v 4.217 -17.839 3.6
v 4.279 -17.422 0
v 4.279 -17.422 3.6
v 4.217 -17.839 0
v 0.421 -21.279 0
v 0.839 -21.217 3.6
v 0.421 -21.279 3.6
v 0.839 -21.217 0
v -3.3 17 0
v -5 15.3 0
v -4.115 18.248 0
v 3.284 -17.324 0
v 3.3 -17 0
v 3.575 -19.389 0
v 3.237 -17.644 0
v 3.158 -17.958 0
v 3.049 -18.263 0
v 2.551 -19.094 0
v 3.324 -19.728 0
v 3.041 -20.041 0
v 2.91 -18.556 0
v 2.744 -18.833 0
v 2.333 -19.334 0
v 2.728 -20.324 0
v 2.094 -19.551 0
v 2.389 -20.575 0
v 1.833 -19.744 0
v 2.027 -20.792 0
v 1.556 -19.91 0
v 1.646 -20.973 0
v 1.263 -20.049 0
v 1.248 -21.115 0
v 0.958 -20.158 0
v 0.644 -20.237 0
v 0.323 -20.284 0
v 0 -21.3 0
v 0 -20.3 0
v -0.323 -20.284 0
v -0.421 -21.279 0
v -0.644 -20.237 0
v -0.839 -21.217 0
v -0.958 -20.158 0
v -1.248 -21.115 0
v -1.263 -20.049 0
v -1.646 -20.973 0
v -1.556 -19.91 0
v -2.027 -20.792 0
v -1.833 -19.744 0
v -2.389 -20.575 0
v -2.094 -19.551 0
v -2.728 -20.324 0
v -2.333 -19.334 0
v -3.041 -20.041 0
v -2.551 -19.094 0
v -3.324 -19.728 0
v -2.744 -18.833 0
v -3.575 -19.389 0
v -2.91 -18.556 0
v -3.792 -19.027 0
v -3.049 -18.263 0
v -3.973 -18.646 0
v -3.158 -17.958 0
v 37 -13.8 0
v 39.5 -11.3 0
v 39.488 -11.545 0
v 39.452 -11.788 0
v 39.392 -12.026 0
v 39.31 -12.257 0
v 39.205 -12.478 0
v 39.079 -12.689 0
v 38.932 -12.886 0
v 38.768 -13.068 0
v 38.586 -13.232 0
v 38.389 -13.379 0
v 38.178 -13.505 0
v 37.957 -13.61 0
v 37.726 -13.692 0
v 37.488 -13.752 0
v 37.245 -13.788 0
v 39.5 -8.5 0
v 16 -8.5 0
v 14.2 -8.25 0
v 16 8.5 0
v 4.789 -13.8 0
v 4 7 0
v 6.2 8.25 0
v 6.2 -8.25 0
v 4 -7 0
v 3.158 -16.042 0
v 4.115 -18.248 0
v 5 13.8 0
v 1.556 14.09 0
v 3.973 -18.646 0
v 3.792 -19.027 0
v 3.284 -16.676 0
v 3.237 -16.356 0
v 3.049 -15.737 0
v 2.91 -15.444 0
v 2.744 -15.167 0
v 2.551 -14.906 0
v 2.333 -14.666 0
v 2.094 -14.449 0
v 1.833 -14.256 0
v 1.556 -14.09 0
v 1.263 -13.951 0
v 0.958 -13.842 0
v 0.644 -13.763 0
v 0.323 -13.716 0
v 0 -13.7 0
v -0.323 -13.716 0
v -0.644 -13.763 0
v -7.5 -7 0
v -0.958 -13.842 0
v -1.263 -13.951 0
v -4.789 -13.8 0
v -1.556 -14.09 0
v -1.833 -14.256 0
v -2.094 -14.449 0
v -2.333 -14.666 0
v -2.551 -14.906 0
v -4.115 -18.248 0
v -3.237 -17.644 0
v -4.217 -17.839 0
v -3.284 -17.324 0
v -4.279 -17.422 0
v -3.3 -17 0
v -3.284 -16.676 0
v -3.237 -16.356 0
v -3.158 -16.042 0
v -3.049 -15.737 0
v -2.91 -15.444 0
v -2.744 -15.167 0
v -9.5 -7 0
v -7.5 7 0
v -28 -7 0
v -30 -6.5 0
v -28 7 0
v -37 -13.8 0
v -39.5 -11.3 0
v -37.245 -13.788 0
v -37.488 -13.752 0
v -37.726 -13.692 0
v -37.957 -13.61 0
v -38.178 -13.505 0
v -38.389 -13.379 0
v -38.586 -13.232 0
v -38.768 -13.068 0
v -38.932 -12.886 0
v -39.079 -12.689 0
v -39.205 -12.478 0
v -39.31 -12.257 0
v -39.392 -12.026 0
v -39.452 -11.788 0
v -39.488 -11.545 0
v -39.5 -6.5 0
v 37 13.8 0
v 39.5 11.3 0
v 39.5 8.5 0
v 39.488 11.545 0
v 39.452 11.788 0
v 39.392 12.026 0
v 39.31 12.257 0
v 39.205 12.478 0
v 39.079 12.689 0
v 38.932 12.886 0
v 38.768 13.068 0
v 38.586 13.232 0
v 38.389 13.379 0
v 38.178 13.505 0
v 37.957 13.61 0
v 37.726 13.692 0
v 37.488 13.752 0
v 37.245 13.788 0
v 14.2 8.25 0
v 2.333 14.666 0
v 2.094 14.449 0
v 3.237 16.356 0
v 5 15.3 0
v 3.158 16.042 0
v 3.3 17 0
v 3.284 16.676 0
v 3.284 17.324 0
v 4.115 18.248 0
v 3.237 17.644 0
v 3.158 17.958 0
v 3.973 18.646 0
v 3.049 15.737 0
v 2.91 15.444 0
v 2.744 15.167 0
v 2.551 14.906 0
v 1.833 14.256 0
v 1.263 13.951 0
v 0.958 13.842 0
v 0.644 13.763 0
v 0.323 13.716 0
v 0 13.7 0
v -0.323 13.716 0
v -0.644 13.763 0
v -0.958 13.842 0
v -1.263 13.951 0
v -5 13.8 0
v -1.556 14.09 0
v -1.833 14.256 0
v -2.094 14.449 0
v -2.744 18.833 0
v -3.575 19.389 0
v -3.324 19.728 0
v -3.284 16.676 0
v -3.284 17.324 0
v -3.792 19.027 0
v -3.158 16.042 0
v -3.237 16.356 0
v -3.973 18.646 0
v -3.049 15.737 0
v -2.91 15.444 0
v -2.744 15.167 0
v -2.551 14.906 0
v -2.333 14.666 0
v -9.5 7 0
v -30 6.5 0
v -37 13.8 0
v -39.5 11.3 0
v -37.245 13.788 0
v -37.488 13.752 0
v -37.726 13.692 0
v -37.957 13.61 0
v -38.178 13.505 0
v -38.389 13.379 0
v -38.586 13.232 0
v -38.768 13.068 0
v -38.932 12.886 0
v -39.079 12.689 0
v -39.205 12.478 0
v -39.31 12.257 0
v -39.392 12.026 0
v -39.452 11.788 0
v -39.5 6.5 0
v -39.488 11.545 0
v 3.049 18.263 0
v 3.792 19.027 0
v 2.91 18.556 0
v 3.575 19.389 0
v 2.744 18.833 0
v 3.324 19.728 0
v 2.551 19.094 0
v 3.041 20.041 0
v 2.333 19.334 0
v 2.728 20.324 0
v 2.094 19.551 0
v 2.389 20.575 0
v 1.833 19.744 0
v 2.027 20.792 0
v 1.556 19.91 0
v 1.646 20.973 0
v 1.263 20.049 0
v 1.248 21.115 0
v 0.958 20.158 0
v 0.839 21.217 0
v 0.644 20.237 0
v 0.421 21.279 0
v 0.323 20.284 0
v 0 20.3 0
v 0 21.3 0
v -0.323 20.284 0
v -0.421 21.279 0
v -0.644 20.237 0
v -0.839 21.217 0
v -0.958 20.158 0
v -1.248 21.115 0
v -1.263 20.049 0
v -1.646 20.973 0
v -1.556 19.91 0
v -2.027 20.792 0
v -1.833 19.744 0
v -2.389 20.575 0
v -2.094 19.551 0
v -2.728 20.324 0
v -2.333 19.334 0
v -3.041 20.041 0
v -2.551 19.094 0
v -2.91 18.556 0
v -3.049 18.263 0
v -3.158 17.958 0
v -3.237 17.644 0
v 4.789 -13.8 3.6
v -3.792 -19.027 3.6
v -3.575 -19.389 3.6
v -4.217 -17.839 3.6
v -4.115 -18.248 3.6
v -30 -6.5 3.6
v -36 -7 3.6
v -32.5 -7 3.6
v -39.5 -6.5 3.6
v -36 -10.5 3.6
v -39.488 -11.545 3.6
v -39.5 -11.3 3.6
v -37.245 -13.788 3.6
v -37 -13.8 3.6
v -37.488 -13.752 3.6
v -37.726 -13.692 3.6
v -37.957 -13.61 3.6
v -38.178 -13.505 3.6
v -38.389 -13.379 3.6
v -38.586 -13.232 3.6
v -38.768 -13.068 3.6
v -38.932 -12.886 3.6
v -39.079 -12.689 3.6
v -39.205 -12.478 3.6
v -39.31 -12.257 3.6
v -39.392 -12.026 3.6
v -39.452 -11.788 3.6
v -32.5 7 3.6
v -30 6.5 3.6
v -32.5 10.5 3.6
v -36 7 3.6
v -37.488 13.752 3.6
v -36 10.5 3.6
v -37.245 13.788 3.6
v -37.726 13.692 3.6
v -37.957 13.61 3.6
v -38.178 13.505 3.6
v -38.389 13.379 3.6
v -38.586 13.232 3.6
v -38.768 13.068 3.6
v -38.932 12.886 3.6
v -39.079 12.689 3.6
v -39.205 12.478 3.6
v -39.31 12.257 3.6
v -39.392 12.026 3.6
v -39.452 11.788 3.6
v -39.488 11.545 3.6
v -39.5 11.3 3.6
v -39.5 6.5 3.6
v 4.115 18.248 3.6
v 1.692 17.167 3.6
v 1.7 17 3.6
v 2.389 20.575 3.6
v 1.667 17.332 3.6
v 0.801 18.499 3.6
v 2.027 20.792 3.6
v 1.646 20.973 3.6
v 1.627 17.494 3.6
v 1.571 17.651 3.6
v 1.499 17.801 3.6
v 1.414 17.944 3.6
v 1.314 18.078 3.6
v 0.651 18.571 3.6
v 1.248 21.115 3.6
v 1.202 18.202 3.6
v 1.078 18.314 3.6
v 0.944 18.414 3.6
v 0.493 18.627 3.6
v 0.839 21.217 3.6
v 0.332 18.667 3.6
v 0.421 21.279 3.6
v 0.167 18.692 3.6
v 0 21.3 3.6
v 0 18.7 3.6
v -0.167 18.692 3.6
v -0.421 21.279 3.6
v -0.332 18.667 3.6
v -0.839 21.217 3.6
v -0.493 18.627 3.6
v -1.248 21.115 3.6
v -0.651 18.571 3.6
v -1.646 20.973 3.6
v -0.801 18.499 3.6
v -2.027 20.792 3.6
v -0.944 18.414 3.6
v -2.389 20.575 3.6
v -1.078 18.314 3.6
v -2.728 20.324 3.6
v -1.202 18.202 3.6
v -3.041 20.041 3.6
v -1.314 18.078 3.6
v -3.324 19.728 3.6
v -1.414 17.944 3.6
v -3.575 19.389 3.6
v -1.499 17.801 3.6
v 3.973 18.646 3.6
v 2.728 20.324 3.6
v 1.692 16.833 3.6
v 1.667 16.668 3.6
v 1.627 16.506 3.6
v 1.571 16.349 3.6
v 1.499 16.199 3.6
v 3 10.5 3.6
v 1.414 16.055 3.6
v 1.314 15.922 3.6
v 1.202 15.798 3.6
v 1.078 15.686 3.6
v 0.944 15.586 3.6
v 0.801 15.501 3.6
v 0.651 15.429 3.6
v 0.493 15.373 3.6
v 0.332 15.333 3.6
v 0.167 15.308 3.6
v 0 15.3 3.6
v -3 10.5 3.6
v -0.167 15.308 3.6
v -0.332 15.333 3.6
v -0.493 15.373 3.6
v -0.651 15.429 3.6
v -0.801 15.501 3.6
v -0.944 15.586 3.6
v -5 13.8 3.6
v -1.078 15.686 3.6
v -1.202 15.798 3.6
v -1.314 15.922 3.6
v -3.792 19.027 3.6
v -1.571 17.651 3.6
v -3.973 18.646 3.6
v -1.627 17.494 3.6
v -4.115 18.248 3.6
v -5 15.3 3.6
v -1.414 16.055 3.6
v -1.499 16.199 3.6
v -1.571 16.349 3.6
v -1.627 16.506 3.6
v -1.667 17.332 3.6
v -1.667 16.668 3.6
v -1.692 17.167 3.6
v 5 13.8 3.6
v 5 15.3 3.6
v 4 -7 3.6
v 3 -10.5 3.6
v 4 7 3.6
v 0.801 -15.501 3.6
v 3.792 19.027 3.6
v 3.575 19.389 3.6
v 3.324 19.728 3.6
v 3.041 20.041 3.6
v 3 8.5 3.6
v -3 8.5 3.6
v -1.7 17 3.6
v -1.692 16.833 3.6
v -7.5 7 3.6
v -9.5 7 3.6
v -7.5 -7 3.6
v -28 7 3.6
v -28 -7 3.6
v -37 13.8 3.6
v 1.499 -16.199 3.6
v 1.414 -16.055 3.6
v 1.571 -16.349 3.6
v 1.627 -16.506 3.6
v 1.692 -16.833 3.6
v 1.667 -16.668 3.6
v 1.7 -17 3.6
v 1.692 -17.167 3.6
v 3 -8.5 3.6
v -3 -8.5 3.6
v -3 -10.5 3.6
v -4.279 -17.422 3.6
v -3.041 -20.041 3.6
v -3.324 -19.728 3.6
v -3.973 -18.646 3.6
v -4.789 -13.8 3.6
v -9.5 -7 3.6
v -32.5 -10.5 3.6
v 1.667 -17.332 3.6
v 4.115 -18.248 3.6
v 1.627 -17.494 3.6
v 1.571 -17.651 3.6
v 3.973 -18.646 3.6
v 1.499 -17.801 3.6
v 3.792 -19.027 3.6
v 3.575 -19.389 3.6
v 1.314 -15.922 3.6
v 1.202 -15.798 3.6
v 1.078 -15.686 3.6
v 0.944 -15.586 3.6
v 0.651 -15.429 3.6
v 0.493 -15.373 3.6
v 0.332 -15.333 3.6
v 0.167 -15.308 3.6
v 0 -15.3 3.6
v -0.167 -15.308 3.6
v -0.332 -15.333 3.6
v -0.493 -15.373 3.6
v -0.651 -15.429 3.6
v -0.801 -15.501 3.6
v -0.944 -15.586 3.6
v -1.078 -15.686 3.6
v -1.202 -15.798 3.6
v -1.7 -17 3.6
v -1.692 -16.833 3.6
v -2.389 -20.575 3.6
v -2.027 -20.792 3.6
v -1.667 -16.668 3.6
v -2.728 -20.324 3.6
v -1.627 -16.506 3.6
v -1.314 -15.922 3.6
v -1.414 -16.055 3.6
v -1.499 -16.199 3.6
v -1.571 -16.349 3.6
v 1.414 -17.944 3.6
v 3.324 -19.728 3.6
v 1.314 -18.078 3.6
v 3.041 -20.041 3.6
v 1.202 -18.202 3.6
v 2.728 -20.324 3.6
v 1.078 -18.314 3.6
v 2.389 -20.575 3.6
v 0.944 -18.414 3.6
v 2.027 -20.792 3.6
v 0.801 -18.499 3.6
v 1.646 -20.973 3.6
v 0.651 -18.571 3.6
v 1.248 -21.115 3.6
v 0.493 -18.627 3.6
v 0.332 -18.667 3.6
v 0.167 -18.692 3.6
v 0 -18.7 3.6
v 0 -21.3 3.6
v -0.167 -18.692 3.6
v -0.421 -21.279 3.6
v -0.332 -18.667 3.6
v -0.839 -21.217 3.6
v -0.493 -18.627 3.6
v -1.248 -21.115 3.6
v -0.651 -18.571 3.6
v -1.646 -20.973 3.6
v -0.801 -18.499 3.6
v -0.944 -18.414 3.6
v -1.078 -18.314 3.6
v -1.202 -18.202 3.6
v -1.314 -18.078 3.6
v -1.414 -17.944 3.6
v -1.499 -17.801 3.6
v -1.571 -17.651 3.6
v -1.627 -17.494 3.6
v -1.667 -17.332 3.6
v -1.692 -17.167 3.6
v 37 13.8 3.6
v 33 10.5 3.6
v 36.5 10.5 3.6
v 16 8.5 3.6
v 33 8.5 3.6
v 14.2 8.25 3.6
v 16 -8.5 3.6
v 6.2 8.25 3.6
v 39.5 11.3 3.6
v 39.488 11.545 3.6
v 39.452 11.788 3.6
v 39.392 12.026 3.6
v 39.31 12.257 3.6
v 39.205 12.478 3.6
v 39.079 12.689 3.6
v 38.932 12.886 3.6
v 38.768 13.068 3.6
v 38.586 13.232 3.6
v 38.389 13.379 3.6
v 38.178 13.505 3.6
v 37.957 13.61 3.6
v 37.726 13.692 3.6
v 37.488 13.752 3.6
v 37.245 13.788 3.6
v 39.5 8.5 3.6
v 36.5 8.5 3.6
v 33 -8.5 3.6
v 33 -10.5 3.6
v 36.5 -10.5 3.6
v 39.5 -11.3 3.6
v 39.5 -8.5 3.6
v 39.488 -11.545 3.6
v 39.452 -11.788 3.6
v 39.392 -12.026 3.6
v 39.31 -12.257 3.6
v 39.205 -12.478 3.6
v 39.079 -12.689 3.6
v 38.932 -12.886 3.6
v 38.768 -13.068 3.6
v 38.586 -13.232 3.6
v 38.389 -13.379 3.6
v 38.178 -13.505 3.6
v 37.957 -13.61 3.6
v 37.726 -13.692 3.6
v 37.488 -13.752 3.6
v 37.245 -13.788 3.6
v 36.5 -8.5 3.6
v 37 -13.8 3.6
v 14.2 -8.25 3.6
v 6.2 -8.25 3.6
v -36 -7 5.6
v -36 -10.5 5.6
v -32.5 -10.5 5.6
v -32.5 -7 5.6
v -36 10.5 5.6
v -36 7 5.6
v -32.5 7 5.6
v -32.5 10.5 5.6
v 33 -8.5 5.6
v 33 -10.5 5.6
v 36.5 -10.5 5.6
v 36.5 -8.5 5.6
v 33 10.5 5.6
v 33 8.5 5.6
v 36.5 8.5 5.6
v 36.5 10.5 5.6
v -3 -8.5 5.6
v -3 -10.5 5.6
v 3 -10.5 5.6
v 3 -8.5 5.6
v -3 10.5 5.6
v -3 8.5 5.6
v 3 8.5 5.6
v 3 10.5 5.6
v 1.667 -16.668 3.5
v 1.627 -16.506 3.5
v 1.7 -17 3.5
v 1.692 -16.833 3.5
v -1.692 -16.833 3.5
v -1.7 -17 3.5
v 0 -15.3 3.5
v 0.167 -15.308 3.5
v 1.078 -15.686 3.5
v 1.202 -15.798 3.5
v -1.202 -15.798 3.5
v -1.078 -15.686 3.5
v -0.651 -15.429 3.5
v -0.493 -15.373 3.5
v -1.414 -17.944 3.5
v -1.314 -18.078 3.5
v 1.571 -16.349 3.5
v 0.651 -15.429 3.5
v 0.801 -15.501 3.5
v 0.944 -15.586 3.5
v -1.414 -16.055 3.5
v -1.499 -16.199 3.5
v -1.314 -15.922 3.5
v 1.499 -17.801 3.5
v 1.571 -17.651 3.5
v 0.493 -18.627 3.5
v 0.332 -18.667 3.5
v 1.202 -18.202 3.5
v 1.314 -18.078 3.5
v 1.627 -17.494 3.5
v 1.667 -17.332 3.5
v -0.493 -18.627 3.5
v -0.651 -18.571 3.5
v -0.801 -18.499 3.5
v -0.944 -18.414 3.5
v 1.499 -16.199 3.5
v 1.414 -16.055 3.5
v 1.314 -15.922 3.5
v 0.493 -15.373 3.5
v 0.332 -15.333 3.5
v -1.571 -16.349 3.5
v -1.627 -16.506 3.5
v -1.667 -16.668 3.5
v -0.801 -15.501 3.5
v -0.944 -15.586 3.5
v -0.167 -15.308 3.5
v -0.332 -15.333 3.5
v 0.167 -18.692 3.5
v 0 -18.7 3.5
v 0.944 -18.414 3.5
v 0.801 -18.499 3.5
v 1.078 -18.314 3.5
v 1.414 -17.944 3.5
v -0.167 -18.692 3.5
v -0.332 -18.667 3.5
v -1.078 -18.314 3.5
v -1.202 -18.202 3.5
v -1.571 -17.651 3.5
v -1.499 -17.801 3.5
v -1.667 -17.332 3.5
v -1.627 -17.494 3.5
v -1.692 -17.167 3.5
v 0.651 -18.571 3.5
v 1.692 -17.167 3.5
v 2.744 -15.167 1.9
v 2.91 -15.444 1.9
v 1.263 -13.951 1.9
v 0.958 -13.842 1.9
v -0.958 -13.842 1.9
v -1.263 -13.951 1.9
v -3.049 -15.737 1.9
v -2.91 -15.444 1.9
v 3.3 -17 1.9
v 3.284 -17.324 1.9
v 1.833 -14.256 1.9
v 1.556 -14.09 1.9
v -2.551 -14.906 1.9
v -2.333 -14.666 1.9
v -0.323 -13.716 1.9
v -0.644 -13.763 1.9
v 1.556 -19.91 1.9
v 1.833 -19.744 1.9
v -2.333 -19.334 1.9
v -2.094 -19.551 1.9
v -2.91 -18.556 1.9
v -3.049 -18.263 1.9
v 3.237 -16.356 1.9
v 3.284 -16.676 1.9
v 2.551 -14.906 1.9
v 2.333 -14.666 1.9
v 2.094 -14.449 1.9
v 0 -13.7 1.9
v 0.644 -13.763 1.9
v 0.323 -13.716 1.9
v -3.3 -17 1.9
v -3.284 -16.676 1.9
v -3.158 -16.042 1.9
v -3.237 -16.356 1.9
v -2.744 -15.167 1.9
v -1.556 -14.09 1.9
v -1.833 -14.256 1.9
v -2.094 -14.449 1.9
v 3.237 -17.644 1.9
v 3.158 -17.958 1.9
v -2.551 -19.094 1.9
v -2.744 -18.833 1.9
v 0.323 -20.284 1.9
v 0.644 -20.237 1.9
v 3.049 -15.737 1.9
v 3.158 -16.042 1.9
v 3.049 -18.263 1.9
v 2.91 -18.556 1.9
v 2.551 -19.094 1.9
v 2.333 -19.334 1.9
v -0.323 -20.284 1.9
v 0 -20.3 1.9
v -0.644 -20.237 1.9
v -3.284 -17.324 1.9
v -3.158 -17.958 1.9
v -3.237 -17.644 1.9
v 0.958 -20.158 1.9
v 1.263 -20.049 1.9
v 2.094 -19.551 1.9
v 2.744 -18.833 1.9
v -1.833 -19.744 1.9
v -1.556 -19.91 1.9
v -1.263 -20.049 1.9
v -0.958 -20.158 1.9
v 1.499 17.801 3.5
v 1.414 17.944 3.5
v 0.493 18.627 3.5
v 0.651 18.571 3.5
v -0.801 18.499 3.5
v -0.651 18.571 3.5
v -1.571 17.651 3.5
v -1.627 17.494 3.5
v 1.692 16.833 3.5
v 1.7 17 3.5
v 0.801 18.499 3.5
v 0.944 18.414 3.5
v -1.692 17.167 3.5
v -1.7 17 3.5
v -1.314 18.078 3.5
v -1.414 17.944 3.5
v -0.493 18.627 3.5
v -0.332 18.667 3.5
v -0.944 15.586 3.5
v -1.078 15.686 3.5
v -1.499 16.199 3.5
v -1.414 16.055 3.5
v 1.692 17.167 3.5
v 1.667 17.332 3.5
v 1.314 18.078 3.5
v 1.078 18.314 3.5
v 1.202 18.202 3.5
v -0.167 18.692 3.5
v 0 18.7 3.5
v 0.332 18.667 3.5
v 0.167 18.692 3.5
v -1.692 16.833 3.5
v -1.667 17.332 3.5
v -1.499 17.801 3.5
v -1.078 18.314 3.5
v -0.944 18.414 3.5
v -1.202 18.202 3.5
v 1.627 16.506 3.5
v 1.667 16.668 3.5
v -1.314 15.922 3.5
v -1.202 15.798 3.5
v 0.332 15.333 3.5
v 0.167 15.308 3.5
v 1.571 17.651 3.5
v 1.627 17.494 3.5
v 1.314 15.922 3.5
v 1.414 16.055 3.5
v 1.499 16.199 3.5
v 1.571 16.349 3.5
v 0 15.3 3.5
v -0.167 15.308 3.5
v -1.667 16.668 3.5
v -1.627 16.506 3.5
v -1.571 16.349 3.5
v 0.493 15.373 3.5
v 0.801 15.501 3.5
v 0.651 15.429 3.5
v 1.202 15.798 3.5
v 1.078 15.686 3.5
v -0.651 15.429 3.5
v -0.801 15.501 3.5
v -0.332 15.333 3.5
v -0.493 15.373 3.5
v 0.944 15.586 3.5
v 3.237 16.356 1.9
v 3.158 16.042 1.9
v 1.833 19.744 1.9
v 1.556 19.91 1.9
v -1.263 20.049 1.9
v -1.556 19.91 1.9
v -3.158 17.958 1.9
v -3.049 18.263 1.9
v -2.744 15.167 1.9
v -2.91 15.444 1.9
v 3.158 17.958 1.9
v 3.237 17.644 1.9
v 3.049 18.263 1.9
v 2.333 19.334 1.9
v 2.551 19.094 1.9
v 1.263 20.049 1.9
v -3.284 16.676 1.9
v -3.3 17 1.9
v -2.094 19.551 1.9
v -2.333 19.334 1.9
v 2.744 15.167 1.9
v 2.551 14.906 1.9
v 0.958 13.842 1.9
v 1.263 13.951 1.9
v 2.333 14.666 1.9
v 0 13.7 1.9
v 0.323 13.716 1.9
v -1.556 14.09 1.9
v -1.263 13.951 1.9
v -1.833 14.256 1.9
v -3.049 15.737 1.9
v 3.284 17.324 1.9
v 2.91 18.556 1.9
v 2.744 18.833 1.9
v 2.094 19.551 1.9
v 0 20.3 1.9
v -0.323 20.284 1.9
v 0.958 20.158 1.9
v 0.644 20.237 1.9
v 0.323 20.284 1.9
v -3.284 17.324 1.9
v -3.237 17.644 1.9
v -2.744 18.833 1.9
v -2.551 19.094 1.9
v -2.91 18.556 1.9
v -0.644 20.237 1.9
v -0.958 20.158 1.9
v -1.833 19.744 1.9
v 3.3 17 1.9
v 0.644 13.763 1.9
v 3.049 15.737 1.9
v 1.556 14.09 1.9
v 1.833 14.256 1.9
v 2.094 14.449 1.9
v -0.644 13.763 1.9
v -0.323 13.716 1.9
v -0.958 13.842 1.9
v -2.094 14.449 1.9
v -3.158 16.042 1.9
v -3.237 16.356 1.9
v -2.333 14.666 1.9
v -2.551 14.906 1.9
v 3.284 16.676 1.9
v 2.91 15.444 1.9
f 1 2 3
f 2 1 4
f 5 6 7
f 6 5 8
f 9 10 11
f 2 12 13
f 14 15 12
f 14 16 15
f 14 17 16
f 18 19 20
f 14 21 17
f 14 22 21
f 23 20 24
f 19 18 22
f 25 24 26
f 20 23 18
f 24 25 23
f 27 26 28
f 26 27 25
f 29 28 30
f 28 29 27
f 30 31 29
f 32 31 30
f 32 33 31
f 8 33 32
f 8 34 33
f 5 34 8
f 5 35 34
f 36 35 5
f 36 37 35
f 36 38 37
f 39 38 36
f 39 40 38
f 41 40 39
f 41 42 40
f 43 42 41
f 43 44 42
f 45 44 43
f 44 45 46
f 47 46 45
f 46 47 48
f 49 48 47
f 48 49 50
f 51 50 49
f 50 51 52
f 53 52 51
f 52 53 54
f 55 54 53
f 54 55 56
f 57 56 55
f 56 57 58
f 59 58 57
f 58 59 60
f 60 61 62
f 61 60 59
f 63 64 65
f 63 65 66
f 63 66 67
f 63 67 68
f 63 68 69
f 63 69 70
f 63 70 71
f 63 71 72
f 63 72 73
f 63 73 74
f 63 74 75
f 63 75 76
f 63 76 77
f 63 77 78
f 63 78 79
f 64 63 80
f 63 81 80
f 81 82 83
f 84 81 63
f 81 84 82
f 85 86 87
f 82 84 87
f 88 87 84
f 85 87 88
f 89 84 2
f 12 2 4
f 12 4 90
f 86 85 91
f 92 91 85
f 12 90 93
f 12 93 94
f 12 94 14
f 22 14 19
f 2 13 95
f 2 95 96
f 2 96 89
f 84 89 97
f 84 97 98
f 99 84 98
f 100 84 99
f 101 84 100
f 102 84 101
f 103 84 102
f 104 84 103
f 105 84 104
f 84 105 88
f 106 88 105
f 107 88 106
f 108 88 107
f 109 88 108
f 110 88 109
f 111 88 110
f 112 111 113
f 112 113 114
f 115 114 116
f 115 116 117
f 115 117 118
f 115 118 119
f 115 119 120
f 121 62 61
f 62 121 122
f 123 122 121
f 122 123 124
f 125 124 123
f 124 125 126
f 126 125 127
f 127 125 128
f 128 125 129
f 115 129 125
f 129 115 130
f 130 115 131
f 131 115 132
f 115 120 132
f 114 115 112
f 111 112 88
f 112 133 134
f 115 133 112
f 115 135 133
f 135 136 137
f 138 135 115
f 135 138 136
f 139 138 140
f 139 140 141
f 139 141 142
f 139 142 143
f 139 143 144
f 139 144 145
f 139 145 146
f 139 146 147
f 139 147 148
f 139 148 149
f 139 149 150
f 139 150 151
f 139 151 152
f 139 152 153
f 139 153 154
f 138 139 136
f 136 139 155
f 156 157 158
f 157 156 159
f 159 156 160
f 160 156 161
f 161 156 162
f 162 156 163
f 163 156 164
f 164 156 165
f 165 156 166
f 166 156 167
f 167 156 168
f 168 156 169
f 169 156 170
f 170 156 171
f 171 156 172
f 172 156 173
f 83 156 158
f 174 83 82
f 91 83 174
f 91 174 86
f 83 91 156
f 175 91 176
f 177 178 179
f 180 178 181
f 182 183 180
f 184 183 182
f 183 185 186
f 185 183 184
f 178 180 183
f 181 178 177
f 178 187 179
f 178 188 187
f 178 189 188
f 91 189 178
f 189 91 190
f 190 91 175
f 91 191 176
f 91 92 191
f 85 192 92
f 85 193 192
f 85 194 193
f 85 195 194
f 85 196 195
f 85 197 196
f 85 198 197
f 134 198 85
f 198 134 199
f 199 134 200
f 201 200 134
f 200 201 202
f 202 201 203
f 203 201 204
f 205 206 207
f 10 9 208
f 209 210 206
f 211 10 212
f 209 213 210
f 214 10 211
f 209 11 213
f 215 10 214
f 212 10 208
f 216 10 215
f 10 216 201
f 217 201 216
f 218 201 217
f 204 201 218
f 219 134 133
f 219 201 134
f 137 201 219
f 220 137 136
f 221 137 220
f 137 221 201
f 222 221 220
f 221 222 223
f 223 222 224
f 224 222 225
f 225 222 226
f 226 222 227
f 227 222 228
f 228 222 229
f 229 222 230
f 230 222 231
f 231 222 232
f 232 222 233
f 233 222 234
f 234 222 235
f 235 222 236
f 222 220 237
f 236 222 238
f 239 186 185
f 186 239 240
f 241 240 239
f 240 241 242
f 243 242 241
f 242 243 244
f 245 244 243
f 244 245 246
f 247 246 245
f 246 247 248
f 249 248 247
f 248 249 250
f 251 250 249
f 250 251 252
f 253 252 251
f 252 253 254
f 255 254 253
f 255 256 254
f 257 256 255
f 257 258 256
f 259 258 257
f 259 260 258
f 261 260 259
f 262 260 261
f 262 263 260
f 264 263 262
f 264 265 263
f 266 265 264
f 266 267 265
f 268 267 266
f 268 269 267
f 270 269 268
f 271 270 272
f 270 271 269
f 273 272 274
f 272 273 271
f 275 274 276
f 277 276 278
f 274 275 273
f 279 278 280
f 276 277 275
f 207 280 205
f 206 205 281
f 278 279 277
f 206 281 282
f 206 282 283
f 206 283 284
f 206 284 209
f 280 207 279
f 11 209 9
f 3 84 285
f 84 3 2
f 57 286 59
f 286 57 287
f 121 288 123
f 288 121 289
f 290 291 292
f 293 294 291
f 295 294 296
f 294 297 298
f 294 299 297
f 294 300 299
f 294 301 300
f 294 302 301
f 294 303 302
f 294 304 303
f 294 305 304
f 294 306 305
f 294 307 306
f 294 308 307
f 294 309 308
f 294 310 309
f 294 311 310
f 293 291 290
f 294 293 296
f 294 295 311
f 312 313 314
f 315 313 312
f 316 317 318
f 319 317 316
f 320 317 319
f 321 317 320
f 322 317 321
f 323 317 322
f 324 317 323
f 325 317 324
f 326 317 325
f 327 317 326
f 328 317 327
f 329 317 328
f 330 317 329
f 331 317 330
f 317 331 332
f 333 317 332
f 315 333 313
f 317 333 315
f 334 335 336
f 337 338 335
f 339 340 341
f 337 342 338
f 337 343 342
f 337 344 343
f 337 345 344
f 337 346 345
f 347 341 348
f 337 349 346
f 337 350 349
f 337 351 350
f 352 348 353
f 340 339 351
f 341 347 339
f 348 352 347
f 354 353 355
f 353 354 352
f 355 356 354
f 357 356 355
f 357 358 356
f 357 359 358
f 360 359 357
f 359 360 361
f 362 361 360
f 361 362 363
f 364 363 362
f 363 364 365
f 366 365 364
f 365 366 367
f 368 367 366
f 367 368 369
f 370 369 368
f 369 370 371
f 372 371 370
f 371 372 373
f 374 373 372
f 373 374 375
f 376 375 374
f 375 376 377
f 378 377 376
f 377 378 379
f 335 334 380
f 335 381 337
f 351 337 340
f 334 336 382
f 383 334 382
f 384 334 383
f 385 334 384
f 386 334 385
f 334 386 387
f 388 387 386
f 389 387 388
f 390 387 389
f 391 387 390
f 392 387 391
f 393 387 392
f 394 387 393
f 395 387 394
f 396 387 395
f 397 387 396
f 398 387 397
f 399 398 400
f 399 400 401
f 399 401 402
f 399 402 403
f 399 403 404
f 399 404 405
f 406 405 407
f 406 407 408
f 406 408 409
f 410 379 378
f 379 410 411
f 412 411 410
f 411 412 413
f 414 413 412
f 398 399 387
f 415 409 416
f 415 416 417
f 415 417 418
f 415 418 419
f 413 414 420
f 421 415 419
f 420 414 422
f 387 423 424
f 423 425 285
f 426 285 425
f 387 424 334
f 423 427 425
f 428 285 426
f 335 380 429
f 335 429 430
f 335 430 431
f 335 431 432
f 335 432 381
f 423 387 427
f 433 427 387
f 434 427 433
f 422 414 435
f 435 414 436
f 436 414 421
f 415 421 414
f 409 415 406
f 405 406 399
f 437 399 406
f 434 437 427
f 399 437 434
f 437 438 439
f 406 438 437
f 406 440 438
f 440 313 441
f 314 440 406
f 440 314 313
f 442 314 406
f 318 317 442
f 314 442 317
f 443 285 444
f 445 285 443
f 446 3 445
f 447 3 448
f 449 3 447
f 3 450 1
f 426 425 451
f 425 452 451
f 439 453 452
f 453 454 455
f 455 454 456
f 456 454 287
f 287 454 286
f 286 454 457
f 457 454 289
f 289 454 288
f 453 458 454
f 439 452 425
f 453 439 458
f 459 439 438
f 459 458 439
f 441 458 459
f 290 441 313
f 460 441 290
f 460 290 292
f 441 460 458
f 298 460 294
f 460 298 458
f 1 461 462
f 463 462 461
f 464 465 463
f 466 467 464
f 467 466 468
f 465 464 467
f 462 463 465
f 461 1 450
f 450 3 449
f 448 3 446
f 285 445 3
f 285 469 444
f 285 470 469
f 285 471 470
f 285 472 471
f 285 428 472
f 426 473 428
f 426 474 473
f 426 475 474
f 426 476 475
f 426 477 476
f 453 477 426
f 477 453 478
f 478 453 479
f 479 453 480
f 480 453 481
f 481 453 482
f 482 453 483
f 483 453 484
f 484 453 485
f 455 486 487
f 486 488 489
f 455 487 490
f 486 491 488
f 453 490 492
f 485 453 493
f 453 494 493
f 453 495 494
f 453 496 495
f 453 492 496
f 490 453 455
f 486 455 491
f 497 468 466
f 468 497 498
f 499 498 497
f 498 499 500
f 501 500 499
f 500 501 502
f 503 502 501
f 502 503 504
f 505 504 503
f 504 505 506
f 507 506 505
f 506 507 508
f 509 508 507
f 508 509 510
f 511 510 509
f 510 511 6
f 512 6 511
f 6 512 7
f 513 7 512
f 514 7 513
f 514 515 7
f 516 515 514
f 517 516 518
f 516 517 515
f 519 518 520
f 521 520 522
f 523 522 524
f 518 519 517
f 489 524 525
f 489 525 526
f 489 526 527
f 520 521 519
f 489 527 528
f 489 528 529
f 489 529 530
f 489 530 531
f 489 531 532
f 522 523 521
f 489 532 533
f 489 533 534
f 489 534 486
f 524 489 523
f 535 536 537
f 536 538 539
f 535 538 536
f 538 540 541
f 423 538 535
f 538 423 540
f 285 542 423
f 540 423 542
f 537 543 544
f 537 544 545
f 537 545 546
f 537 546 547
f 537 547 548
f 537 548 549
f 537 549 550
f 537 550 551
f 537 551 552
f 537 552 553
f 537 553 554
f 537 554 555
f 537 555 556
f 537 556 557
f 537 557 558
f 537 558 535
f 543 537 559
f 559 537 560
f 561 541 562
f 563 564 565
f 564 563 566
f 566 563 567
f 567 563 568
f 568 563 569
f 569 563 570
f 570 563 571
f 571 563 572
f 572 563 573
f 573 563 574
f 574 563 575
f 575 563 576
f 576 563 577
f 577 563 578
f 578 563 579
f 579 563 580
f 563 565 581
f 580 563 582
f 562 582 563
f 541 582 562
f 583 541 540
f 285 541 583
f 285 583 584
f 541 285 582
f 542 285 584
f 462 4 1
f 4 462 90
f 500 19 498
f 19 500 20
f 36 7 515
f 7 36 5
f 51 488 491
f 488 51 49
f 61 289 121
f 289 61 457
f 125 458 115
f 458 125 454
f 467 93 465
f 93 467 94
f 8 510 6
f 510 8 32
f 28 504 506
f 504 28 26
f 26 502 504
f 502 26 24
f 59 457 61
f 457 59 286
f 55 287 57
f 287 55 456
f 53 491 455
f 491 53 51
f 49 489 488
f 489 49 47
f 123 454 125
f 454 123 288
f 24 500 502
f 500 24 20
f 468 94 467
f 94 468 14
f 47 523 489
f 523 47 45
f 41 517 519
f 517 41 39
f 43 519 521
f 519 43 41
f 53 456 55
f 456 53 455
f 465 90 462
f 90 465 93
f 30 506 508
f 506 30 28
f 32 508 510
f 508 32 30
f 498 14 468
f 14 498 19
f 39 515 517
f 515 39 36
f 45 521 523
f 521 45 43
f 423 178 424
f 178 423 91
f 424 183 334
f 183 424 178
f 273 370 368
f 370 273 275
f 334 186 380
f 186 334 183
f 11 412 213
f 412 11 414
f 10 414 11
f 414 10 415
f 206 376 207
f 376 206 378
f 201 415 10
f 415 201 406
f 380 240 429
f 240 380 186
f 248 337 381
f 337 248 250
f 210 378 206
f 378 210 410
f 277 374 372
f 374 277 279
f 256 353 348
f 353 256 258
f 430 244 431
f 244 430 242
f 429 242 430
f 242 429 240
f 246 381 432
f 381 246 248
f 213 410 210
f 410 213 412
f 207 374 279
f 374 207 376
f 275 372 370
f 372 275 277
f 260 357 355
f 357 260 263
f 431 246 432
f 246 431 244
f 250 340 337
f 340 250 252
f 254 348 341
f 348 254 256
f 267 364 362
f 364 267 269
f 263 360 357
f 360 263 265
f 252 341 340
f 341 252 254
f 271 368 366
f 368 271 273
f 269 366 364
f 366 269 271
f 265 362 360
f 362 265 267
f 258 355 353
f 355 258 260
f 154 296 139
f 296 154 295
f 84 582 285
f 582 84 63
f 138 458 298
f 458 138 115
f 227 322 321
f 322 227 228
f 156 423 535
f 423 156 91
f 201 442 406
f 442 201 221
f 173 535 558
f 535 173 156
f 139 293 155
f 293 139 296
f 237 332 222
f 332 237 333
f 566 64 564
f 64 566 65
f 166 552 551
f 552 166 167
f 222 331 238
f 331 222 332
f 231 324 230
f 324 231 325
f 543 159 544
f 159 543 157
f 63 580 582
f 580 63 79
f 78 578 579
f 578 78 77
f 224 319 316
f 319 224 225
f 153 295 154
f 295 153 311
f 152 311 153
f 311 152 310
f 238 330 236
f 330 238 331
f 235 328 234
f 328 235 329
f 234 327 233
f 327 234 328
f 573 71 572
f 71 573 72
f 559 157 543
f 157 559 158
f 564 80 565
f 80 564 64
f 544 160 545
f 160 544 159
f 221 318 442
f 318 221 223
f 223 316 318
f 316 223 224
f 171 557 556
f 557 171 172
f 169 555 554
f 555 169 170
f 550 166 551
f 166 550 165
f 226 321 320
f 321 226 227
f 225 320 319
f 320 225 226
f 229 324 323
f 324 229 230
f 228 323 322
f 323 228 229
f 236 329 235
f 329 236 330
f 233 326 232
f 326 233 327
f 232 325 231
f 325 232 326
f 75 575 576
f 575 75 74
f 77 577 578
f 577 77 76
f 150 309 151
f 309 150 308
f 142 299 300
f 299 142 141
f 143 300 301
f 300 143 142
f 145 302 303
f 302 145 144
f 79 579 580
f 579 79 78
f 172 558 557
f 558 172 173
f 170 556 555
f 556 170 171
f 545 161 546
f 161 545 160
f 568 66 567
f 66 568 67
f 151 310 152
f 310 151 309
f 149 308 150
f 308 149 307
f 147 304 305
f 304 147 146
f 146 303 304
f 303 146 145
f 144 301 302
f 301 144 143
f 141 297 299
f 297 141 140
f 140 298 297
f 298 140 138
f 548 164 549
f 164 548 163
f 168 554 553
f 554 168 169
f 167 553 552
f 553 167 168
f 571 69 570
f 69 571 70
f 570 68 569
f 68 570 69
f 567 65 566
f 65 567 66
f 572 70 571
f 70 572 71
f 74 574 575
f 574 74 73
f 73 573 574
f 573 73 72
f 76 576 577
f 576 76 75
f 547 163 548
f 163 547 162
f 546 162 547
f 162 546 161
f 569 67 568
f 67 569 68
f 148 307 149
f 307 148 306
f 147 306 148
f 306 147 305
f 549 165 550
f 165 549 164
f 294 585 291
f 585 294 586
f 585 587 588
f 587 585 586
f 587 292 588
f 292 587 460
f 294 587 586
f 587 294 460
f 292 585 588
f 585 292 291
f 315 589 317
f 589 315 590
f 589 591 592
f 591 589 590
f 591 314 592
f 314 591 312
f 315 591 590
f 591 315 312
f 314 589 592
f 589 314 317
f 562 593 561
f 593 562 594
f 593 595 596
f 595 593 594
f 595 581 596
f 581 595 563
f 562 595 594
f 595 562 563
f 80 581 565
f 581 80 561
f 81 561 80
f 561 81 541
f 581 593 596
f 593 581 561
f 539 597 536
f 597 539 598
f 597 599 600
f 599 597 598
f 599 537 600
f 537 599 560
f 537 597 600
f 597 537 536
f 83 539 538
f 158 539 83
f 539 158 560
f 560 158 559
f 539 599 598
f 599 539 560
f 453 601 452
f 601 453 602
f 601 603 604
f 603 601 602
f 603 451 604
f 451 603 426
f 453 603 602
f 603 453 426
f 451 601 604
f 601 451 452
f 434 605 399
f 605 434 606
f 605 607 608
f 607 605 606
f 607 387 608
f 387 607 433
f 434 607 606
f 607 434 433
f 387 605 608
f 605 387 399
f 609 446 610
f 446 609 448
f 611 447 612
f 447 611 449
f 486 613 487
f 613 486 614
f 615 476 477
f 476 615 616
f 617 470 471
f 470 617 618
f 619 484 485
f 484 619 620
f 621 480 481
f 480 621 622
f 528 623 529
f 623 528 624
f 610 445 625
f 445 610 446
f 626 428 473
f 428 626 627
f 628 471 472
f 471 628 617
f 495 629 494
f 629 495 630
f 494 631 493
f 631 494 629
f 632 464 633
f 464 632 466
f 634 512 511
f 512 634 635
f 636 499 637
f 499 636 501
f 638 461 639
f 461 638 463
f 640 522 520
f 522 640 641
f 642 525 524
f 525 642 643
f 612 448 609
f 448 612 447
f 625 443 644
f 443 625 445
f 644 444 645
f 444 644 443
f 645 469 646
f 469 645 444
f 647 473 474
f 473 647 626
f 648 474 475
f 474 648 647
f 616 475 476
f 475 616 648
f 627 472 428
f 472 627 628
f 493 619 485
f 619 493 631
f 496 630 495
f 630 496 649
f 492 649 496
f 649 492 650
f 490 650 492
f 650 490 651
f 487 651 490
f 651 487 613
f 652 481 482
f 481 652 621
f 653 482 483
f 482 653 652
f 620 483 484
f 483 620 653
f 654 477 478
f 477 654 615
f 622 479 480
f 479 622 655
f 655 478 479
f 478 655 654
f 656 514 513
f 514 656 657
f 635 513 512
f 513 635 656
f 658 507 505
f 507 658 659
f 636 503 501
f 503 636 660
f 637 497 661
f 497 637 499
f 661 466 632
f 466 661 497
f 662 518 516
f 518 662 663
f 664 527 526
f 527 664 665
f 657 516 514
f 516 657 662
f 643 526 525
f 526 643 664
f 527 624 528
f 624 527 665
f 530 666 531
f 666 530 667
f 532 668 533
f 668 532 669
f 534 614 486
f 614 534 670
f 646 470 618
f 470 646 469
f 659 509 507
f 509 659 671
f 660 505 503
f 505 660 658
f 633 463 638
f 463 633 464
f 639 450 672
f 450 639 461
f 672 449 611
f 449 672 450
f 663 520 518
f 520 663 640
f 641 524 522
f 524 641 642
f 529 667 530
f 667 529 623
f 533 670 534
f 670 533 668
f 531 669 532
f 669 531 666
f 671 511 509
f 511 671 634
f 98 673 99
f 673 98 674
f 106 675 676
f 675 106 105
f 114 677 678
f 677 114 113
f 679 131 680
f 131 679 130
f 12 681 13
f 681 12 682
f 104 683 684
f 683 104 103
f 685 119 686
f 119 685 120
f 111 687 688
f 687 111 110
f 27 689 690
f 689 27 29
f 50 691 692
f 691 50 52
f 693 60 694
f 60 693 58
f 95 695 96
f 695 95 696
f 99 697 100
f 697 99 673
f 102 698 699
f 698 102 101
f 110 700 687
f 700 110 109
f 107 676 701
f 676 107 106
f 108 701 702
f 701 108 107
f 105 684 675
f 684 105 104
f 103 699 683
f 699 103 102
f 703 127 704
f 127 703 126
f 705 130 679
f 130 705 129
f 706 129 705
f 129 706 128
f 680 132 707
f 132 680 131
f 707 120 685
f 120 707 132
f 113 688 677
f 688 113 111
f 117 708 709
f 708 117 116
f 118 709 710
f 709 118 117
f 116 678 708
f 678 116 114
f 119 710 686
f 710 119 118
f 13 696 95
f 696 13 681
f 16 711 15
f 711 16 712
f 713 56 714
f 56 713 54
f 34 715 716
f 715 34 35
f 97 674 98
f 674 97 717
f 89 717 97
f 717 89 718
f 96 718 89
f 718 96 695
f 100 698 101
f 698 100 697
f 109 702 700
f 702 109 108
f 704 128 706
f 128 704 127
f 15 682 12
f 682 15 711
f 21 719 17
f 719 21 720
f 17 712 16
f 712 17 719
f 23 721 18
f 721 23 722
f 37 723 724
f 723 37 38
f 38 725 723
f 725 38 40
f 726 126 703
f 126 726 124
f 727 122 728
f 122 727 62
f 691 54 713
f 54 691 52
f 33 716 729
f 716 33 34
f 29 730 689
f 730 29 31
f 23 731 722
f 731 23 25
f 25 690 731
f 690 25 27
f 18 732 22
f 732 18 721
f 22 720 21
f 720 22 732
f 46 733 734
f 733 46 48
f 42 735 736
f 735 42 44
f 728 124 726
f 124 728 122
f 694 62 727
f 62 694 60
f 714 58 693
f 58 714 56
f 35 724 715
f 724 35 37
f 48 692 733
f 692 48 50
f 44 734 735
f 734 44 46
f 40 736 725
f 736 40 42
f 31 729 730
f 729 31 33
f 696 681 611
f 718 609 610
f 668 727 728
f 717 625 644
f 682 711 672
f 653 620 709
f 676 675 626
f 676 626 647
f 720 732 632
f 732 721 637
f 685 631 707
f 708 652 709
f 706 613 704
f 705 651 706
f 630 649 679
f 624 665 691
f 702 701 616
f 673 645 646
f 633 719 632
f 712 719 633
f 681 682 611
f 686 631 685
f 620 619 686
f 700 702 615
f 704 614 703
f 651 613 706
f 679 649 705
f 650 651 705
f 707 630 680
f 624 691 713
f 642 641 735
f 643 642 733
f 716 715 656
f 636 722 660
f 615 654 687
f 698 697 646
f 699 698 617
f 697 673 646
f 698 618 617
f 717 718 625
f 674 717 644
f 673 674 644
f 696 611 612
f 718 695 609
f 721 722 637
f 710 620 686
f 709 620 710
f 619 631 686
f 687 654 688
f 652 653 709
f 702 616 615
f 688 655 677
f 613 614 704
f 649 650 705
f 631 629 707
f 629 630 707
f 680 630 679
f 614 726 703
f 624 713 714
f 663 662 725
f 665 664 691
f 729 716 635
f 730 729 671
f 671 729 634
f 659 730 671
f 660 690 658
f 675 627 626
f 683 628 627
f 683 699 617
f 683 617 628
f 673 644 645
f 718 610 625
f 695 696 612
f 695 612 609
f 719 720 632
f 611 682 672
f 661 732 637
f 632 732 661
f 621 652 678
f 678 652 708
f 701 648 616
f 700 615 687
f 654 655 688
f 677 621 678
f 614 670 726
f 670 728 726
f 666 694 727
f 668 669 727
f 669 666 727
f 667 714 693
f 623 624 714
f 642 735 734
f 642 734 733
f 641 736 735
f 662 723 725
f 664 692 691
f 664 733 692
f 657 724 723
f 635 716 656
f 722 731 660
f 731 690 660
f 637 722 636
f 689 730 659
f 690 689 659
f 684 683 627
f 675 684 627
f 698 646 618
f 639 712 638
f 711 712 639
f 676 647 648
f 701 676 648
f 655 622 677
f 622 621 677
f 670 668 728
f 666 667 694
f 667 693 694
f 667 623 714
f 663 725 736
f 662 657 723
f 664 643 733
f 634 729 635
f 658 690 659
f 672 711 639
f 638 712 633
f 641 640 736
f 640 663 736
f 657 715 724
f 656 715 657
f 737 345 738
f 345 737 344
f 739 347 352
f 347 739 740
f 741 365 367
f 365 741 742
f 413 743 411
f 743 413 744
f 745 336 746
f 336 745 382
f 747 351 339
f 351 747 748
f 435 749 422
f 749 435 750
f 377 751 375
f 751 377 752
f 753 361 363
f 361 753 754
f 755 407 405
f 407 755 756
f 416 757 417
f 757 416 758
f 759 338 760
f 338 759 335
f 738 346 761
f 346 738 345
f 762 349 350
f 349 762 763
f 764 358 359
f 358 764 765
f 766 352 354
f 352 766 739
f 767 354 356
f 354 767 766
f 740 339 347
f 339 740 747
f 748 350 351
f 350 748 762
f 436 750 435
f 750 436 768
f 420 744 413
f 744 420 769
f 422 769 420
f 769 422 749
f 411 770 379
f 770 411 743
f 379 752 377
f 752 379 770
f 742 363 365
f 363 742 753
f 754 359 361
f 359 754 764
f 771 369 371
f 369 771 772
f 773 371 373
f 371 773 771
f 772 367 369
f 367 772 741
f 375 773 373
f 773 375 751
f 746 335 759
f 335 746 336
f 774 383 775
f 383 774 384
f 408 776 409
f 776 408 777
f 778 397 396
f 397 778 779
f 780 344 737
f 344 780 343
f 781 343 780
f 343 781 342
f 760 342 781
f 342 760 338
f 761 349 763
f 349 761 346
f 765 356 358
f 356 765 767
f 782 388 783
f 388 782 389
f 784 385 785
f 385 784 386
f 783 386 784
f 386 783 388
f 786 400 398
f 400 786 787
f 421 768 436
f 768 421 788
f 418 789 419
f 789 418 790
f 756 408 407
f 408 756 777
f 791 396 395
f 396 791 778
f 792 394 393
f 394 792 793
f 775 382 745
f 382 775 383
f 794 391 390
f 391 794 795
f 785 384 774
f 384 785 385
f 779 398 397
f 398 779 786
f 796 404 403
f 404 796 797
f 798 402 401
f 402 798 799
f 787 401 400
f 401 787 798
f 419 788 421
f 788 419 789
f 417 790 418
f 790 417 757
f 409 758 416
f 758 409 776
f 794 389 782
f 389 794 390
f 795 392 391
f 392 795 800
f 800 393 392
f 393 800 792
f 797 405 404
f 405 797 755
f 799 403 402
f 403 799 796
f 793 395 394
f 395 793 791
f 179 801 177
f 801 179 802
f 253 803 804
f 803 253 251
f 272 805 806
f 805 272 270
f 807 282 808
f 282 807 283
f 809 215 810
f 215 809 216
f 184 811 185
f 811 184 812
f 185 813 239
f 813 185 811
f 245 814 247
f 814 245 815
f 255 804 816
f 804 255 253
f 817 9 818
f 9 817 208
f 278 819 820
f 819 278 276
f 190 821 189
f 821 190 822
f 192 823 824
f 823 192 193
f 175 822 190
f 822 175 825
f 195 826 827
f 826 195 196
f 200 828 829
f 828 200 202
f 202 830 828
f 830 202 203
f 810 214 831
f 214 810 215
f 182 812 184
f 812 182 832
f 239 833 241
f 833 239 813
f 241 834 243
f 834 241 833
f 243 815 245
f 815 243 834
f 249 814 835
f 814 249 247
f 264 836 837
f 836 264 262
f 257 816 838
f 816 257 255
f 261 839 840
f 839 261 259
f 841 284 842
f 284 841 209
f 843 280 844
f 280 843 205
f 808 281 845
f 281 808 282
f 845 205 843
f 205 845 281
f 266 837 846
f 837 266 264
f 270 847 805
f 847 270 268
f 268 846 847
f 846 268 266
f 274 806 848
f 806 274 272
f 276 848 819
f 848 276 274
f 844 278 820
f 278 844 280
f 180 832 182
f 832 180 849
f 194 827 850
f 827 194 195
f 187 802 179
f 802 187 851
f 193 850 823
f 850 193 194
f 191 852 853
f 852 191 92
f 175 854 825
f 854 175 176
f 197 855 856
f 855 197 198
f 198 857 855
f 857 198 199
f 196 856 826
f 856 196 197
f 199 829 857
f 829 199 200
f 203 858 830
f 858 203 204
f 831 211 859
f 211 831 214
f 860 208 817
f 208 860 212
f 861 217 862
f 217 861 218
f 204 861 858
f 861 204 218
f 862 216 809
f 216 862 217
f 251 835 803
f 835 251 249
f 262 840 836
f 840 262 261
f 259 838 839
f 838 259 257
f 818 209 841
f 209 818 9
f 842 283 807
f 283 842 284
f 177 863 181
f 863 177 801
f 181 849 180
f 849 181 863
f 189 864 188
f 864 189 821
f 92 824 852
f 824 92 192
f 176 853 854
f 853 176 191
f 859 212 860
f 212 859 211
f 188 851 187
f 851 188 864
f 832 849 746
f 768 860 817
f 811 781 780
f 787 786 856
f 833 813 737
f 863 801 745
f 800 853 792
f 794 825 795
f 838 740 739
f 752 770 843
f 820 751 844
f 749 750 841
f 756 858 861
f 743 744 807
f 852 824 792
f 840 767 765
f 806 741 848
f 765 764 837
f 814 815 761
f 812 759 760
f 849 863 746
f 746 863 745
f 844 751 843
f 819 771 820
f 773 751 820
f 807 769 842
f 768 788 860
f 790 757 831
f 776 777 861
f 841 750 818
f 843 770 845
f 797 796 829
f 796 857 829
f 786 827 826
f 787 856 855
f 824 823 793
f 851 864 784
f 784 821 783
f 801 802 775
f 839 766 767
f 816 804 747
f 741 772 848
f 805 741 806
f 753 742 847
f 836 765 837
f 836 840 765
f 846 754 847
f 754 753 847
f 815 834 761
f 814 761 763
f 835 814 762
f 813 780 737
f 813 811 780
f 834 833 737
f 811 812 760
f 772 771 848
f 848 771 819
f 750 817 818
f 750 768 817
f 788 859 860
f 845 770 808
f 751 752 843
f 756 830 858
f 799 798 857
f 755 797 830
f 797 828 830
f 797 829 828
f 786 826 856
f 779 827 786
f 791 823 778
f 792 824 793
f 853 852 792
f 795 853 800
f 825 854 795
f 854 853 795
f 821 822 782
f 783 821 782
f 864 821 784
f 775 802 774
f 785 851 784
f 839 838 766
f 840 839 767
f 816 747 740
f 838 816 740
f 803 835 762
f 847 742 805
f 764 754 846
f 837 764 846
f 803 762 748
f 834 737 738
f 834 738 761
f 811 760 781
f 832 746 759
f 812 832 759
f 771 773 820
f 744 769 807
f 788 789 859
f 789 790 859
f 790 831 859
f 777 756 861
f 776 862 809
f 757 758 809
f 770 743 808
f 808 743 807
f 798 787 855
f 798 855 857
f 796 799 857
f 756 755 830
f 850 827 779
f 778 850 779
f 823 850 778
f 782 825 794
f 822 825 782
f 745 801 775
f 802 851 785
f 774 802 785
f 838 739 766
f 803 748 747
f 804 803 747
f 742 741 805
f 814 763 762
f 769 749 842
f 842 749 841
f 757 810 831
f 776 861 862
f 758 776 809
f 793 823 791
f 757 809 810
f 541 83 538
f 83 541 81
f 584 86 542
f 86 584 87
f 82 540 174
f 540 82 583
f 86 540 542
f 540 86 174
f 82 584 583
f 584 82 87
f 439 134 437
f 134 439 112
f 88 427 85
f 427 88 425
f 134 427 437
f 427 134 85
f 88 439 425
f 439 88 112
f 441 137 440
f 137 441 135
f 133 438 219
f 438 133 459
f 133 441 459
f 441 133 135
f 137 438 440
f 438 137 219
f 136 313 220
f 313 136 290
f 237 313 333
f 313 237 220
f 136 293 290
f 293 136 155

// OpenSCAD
$fn = 64;

// ====================================================================
// THÔNG SỐ HÌNH HỌC HỆ THỐNG
// ====================================================================

// 1. Hệ 2 ống tròn Ø8.0 mm
rod_D       = 8.25;         // Đường kính kẹp ôm ống Ø8.0mm (+0.25mm dung sai ôm khít)
rod_CC      = 56.0;         // Khoảng cách tâm - đến - tâm (C-C) = 56.0mm (X = -28.0 và +28.0)
rod_out     = 64.0;         // Mép ngoài - ngoài = 64.0mm (tại X = -32.0 và +32.0)
rod_in      = 48.0;         // Mép trong - trong = 48.0mm (tại X = -24.0 và +24.0)

// 2. Bo Luckfox Pico Max / Pro
pcb_L       = 72.0;         // Chiều dài PCB Luckfox (mm) (X = -36.0 .. +36.0)
pcb_W       = 21.0;         // Chiều rộng PCB Luckfox (mm) (Y = -10.5 .. +10.5)
pcb_T       = 1.6;          // Độ dày PCB (mm)

cav_L       = 72.8;         // Chiều dài hốc chứa PCB (+0.8mm dung sai)
cav_W       = 21.6;         // Chiều rộng hốc chứa PCB (+0.6mm dung sai)

// 3. Chân GPIO Luckfox (40 chân quay xuống dưới)
gpio_L      = 50.8;         // Chiều dài 2 hàng chân 20x1 (X = -35.2 .. +15.6)
gpio_H      = 11.5;         // Độ sâu chân thò xuống dưới PCB (mm)
gpio_Y      = 8.89;         // Khoảng cách tâm 2 hàng chân (Y = -8.89 và +8.89)

// Các hàm bổ trợ hình học chuẩn FDM
module rounded_box_z(lx, ly, lz, r=2.4) {
    hull() {
        for (sx = [-1, 1])
            for (sy = [-1, 1])
                translate([sx*(lx/2 - r), sy*(ly/2 - r), 0])
                    cylinder(r=r, h=lz);
    }
}

// ====================================================================
// CHI TIẾT 03: NẸP TRÊN KHÓA GIỮ PCB LUCKFOX PICO MAX / PRO
// - Đặt phẳng Z = 0 (mặt lưng phẳng áp bàn in PEI), 0% Support!
// - CÁC GÂN NẸP ĐÈ PCB (CLERANCE LUGS): Gồm 6 vấu đè cao 2.0mm
//   chĩa xuống mặt bo mạch tại Z = 17.6mm, ép chặt PCB không cho rung lắc.
// - CÁC VÁCH NGĂN ĐƯỢC GIA CỐ >= 1.8mm (loại bỏ hoàn toàn các vách mỏng <1.5mm):
//   + Vách Cam MIPI <-> RJ45: 1.8mm (trước đây 0.5mm)
//   + Vách RV1106 <-> Cam MIPI: 2.2mm (trước đây 1.0mm)
//   + Vách BOOT/RESET <-> RV1106: 2.0mm
//   + Vách Type-C <-> BOOT/RESET: 2.0mm (trước đây chồng lấn 0mm)
// - Hốc chìm đầu ốc M3 d=6.6mm vát 45° in cực sạch.
// ====================================================================

module part_03_pcb_top_retainer() {
    ret_L   = 79.0;
    ret_W   = 27.6;
    plate_H = 3.6;          // Độ dày tấm nẹp chính
    lug_H   = 2.0;          // Chiều cao vấu ép đè PCB (tổng chiều cao = 5.6mm)

    difference() {
        union() {
            // 1. Tấm nẹp chính (đặt phẳng Z = 0 .. plate_H)
            rounded_box_z(ret_L, ret_W, plate_H, r=2.5);

            // 2. 2 Tai bắt ốc M3 hai bên sườn (X = 0, Y = ±17.0mm)
            for (sy = [-1, 1]) {
                hull() {
                    translate([0, sy*(ret_W/2 + 3.2), 0])
                        cylinder(d=8.6, h=plate_H);
                    translate([-5.0, sy*(ret_W/2 - 1.5), 0])
                        cube([10.0, 3.0, plate_H]);
                }
            }

            // 3. CÁC VẤU KẸP ĐÈ PCB (Clamping Lugs) nhô lên từ Z = plate_H lên plate_H + lug_H
            //    (khi lắp ráp úp ngược xuống, các vấu này đè chuẩn Z = 17.6mm lên PCB)
            // A. Vấu đè đầu trái (flanking Type-C, X = -36.0 .. -32.5mm)
            translate([-36.0, -10.5, plate_H])
                cube([3.5, 3.5, lug_H]);
            translate([-36.0, 7.0, plate_H])
                cube([3.5, 3.5, lug_H]);

            // B. Vấu đè đầu phải (flanking RJ45, X = +33.0 .. +36.5mm)
            translate([33.0, -10.5, plate_H])
                cube([3.5, 2.0, lug_H]);
            translate([33.0, 8.5, plate_H])
                cube([3.5, 2.0, lug_H]);

            // C. Vấu đè giữa sườn (X = -3.0 .. +3.0mm, Y = ±(8.5 .. 10.5))
            translate([-3.0, -10.5, plate_H])
                cube([6.0, 2.0, lug_H]);
            translate([-3.0, 8.5, plate_H])
                cube([6.0, 2.0, lug_H]);
        }

        // ------------------------------------------------------------
        // CÁC HỐC THOÁNG TRÊN NẸP (ĐƯỢC ĐỊNH TUYẾN CHÍNH XÁC RIBS >= 1.8MM)
        // ------------------------------------------------------------

        // 1. Cổng RJ45 (X = +16.0 .. +40.0, rộng 17.0mm)
        translate([16.0, -8.5, -0.5])
            cube([24.0, 17.0, plate_H + lug_H + 1.0]);

        // 2. Cáp Camera MIPI CSI (X = +6.2 .. +14.2, rộng 16.5mm)
        //    -> Gân giữa Cam và RJ45 = 16.0 - 14.2 = 1.8mm (>= 1.5mm chuẩn!)
        translate([6.2, -8.25, -0.5])
            cube([8.0, 16.5, plate_H + lug_H + 1.0]);

        // 3. Khe tản nhiệt Chip RV1106 (X = -7.5 .. +4.0, rộng 14.0mm)
        //    -> Gân giữa RV1106 và Cam = 6.2 - 4.0 = 2.2mm (>= 1.5mm chuẩn!)
        translate([-7.5, -7.0, -0.5])
            cube([11.5, 14.0, plate_H + lug_H + 1.0]);

        // 4. Khe bấm nút BOOT / RESET & Thẻ nhớ MicroSD (X = -28.0 .. -9.5)
        //    -> Gân giữa BOOT/RESET và RV1106 = -7.5 - (-9.5) = 2.0mm (>= 1.5mm chuẩn!)
        translate([-28.0, -7.0, -0.5])
            cube([18.5, 14.0, plate_H + lug_H + 1.0]);

        // 5. Cổng Type-C (X = -40.5 .. -30.0, rộng 13.0mm)
        //    -> Gân giữa Type-C và BOOT/RESET = -28.0 - (-30.0) = 2.0mm (>= 1.5mm chuẩn!)
        translate([-40.5, -6.5, -0.5])
            cube([10.5, 13.0, plate_H + lug_H + 1.0]);

        // 6. 2 Lỗ ốc M3 ở 2 tai (X = 0, Y = ±17.0mm)
        for (sy = [-1, 1]) {
            translate([0, sy*(ret_W/2 + 3.2), -0.5])
                cylinder(d=3.4, h=plate_H + lug_H + 1.0);
            // Hốc chìm đầu ốc M3 d=6.6mm kèm vát mép 45°
            translate([0, sy*(ret_W/2 + 3.2), -0.1])
                cylinder(d=6.6, h=2.0);
            translate([0, sy*(ret_W/2 + 3.2), 1.9])
                cylinder(d1=6.6, d2=3.4, h=1.6);
        }
    }
}

part_03_pcb_top_retainer();
